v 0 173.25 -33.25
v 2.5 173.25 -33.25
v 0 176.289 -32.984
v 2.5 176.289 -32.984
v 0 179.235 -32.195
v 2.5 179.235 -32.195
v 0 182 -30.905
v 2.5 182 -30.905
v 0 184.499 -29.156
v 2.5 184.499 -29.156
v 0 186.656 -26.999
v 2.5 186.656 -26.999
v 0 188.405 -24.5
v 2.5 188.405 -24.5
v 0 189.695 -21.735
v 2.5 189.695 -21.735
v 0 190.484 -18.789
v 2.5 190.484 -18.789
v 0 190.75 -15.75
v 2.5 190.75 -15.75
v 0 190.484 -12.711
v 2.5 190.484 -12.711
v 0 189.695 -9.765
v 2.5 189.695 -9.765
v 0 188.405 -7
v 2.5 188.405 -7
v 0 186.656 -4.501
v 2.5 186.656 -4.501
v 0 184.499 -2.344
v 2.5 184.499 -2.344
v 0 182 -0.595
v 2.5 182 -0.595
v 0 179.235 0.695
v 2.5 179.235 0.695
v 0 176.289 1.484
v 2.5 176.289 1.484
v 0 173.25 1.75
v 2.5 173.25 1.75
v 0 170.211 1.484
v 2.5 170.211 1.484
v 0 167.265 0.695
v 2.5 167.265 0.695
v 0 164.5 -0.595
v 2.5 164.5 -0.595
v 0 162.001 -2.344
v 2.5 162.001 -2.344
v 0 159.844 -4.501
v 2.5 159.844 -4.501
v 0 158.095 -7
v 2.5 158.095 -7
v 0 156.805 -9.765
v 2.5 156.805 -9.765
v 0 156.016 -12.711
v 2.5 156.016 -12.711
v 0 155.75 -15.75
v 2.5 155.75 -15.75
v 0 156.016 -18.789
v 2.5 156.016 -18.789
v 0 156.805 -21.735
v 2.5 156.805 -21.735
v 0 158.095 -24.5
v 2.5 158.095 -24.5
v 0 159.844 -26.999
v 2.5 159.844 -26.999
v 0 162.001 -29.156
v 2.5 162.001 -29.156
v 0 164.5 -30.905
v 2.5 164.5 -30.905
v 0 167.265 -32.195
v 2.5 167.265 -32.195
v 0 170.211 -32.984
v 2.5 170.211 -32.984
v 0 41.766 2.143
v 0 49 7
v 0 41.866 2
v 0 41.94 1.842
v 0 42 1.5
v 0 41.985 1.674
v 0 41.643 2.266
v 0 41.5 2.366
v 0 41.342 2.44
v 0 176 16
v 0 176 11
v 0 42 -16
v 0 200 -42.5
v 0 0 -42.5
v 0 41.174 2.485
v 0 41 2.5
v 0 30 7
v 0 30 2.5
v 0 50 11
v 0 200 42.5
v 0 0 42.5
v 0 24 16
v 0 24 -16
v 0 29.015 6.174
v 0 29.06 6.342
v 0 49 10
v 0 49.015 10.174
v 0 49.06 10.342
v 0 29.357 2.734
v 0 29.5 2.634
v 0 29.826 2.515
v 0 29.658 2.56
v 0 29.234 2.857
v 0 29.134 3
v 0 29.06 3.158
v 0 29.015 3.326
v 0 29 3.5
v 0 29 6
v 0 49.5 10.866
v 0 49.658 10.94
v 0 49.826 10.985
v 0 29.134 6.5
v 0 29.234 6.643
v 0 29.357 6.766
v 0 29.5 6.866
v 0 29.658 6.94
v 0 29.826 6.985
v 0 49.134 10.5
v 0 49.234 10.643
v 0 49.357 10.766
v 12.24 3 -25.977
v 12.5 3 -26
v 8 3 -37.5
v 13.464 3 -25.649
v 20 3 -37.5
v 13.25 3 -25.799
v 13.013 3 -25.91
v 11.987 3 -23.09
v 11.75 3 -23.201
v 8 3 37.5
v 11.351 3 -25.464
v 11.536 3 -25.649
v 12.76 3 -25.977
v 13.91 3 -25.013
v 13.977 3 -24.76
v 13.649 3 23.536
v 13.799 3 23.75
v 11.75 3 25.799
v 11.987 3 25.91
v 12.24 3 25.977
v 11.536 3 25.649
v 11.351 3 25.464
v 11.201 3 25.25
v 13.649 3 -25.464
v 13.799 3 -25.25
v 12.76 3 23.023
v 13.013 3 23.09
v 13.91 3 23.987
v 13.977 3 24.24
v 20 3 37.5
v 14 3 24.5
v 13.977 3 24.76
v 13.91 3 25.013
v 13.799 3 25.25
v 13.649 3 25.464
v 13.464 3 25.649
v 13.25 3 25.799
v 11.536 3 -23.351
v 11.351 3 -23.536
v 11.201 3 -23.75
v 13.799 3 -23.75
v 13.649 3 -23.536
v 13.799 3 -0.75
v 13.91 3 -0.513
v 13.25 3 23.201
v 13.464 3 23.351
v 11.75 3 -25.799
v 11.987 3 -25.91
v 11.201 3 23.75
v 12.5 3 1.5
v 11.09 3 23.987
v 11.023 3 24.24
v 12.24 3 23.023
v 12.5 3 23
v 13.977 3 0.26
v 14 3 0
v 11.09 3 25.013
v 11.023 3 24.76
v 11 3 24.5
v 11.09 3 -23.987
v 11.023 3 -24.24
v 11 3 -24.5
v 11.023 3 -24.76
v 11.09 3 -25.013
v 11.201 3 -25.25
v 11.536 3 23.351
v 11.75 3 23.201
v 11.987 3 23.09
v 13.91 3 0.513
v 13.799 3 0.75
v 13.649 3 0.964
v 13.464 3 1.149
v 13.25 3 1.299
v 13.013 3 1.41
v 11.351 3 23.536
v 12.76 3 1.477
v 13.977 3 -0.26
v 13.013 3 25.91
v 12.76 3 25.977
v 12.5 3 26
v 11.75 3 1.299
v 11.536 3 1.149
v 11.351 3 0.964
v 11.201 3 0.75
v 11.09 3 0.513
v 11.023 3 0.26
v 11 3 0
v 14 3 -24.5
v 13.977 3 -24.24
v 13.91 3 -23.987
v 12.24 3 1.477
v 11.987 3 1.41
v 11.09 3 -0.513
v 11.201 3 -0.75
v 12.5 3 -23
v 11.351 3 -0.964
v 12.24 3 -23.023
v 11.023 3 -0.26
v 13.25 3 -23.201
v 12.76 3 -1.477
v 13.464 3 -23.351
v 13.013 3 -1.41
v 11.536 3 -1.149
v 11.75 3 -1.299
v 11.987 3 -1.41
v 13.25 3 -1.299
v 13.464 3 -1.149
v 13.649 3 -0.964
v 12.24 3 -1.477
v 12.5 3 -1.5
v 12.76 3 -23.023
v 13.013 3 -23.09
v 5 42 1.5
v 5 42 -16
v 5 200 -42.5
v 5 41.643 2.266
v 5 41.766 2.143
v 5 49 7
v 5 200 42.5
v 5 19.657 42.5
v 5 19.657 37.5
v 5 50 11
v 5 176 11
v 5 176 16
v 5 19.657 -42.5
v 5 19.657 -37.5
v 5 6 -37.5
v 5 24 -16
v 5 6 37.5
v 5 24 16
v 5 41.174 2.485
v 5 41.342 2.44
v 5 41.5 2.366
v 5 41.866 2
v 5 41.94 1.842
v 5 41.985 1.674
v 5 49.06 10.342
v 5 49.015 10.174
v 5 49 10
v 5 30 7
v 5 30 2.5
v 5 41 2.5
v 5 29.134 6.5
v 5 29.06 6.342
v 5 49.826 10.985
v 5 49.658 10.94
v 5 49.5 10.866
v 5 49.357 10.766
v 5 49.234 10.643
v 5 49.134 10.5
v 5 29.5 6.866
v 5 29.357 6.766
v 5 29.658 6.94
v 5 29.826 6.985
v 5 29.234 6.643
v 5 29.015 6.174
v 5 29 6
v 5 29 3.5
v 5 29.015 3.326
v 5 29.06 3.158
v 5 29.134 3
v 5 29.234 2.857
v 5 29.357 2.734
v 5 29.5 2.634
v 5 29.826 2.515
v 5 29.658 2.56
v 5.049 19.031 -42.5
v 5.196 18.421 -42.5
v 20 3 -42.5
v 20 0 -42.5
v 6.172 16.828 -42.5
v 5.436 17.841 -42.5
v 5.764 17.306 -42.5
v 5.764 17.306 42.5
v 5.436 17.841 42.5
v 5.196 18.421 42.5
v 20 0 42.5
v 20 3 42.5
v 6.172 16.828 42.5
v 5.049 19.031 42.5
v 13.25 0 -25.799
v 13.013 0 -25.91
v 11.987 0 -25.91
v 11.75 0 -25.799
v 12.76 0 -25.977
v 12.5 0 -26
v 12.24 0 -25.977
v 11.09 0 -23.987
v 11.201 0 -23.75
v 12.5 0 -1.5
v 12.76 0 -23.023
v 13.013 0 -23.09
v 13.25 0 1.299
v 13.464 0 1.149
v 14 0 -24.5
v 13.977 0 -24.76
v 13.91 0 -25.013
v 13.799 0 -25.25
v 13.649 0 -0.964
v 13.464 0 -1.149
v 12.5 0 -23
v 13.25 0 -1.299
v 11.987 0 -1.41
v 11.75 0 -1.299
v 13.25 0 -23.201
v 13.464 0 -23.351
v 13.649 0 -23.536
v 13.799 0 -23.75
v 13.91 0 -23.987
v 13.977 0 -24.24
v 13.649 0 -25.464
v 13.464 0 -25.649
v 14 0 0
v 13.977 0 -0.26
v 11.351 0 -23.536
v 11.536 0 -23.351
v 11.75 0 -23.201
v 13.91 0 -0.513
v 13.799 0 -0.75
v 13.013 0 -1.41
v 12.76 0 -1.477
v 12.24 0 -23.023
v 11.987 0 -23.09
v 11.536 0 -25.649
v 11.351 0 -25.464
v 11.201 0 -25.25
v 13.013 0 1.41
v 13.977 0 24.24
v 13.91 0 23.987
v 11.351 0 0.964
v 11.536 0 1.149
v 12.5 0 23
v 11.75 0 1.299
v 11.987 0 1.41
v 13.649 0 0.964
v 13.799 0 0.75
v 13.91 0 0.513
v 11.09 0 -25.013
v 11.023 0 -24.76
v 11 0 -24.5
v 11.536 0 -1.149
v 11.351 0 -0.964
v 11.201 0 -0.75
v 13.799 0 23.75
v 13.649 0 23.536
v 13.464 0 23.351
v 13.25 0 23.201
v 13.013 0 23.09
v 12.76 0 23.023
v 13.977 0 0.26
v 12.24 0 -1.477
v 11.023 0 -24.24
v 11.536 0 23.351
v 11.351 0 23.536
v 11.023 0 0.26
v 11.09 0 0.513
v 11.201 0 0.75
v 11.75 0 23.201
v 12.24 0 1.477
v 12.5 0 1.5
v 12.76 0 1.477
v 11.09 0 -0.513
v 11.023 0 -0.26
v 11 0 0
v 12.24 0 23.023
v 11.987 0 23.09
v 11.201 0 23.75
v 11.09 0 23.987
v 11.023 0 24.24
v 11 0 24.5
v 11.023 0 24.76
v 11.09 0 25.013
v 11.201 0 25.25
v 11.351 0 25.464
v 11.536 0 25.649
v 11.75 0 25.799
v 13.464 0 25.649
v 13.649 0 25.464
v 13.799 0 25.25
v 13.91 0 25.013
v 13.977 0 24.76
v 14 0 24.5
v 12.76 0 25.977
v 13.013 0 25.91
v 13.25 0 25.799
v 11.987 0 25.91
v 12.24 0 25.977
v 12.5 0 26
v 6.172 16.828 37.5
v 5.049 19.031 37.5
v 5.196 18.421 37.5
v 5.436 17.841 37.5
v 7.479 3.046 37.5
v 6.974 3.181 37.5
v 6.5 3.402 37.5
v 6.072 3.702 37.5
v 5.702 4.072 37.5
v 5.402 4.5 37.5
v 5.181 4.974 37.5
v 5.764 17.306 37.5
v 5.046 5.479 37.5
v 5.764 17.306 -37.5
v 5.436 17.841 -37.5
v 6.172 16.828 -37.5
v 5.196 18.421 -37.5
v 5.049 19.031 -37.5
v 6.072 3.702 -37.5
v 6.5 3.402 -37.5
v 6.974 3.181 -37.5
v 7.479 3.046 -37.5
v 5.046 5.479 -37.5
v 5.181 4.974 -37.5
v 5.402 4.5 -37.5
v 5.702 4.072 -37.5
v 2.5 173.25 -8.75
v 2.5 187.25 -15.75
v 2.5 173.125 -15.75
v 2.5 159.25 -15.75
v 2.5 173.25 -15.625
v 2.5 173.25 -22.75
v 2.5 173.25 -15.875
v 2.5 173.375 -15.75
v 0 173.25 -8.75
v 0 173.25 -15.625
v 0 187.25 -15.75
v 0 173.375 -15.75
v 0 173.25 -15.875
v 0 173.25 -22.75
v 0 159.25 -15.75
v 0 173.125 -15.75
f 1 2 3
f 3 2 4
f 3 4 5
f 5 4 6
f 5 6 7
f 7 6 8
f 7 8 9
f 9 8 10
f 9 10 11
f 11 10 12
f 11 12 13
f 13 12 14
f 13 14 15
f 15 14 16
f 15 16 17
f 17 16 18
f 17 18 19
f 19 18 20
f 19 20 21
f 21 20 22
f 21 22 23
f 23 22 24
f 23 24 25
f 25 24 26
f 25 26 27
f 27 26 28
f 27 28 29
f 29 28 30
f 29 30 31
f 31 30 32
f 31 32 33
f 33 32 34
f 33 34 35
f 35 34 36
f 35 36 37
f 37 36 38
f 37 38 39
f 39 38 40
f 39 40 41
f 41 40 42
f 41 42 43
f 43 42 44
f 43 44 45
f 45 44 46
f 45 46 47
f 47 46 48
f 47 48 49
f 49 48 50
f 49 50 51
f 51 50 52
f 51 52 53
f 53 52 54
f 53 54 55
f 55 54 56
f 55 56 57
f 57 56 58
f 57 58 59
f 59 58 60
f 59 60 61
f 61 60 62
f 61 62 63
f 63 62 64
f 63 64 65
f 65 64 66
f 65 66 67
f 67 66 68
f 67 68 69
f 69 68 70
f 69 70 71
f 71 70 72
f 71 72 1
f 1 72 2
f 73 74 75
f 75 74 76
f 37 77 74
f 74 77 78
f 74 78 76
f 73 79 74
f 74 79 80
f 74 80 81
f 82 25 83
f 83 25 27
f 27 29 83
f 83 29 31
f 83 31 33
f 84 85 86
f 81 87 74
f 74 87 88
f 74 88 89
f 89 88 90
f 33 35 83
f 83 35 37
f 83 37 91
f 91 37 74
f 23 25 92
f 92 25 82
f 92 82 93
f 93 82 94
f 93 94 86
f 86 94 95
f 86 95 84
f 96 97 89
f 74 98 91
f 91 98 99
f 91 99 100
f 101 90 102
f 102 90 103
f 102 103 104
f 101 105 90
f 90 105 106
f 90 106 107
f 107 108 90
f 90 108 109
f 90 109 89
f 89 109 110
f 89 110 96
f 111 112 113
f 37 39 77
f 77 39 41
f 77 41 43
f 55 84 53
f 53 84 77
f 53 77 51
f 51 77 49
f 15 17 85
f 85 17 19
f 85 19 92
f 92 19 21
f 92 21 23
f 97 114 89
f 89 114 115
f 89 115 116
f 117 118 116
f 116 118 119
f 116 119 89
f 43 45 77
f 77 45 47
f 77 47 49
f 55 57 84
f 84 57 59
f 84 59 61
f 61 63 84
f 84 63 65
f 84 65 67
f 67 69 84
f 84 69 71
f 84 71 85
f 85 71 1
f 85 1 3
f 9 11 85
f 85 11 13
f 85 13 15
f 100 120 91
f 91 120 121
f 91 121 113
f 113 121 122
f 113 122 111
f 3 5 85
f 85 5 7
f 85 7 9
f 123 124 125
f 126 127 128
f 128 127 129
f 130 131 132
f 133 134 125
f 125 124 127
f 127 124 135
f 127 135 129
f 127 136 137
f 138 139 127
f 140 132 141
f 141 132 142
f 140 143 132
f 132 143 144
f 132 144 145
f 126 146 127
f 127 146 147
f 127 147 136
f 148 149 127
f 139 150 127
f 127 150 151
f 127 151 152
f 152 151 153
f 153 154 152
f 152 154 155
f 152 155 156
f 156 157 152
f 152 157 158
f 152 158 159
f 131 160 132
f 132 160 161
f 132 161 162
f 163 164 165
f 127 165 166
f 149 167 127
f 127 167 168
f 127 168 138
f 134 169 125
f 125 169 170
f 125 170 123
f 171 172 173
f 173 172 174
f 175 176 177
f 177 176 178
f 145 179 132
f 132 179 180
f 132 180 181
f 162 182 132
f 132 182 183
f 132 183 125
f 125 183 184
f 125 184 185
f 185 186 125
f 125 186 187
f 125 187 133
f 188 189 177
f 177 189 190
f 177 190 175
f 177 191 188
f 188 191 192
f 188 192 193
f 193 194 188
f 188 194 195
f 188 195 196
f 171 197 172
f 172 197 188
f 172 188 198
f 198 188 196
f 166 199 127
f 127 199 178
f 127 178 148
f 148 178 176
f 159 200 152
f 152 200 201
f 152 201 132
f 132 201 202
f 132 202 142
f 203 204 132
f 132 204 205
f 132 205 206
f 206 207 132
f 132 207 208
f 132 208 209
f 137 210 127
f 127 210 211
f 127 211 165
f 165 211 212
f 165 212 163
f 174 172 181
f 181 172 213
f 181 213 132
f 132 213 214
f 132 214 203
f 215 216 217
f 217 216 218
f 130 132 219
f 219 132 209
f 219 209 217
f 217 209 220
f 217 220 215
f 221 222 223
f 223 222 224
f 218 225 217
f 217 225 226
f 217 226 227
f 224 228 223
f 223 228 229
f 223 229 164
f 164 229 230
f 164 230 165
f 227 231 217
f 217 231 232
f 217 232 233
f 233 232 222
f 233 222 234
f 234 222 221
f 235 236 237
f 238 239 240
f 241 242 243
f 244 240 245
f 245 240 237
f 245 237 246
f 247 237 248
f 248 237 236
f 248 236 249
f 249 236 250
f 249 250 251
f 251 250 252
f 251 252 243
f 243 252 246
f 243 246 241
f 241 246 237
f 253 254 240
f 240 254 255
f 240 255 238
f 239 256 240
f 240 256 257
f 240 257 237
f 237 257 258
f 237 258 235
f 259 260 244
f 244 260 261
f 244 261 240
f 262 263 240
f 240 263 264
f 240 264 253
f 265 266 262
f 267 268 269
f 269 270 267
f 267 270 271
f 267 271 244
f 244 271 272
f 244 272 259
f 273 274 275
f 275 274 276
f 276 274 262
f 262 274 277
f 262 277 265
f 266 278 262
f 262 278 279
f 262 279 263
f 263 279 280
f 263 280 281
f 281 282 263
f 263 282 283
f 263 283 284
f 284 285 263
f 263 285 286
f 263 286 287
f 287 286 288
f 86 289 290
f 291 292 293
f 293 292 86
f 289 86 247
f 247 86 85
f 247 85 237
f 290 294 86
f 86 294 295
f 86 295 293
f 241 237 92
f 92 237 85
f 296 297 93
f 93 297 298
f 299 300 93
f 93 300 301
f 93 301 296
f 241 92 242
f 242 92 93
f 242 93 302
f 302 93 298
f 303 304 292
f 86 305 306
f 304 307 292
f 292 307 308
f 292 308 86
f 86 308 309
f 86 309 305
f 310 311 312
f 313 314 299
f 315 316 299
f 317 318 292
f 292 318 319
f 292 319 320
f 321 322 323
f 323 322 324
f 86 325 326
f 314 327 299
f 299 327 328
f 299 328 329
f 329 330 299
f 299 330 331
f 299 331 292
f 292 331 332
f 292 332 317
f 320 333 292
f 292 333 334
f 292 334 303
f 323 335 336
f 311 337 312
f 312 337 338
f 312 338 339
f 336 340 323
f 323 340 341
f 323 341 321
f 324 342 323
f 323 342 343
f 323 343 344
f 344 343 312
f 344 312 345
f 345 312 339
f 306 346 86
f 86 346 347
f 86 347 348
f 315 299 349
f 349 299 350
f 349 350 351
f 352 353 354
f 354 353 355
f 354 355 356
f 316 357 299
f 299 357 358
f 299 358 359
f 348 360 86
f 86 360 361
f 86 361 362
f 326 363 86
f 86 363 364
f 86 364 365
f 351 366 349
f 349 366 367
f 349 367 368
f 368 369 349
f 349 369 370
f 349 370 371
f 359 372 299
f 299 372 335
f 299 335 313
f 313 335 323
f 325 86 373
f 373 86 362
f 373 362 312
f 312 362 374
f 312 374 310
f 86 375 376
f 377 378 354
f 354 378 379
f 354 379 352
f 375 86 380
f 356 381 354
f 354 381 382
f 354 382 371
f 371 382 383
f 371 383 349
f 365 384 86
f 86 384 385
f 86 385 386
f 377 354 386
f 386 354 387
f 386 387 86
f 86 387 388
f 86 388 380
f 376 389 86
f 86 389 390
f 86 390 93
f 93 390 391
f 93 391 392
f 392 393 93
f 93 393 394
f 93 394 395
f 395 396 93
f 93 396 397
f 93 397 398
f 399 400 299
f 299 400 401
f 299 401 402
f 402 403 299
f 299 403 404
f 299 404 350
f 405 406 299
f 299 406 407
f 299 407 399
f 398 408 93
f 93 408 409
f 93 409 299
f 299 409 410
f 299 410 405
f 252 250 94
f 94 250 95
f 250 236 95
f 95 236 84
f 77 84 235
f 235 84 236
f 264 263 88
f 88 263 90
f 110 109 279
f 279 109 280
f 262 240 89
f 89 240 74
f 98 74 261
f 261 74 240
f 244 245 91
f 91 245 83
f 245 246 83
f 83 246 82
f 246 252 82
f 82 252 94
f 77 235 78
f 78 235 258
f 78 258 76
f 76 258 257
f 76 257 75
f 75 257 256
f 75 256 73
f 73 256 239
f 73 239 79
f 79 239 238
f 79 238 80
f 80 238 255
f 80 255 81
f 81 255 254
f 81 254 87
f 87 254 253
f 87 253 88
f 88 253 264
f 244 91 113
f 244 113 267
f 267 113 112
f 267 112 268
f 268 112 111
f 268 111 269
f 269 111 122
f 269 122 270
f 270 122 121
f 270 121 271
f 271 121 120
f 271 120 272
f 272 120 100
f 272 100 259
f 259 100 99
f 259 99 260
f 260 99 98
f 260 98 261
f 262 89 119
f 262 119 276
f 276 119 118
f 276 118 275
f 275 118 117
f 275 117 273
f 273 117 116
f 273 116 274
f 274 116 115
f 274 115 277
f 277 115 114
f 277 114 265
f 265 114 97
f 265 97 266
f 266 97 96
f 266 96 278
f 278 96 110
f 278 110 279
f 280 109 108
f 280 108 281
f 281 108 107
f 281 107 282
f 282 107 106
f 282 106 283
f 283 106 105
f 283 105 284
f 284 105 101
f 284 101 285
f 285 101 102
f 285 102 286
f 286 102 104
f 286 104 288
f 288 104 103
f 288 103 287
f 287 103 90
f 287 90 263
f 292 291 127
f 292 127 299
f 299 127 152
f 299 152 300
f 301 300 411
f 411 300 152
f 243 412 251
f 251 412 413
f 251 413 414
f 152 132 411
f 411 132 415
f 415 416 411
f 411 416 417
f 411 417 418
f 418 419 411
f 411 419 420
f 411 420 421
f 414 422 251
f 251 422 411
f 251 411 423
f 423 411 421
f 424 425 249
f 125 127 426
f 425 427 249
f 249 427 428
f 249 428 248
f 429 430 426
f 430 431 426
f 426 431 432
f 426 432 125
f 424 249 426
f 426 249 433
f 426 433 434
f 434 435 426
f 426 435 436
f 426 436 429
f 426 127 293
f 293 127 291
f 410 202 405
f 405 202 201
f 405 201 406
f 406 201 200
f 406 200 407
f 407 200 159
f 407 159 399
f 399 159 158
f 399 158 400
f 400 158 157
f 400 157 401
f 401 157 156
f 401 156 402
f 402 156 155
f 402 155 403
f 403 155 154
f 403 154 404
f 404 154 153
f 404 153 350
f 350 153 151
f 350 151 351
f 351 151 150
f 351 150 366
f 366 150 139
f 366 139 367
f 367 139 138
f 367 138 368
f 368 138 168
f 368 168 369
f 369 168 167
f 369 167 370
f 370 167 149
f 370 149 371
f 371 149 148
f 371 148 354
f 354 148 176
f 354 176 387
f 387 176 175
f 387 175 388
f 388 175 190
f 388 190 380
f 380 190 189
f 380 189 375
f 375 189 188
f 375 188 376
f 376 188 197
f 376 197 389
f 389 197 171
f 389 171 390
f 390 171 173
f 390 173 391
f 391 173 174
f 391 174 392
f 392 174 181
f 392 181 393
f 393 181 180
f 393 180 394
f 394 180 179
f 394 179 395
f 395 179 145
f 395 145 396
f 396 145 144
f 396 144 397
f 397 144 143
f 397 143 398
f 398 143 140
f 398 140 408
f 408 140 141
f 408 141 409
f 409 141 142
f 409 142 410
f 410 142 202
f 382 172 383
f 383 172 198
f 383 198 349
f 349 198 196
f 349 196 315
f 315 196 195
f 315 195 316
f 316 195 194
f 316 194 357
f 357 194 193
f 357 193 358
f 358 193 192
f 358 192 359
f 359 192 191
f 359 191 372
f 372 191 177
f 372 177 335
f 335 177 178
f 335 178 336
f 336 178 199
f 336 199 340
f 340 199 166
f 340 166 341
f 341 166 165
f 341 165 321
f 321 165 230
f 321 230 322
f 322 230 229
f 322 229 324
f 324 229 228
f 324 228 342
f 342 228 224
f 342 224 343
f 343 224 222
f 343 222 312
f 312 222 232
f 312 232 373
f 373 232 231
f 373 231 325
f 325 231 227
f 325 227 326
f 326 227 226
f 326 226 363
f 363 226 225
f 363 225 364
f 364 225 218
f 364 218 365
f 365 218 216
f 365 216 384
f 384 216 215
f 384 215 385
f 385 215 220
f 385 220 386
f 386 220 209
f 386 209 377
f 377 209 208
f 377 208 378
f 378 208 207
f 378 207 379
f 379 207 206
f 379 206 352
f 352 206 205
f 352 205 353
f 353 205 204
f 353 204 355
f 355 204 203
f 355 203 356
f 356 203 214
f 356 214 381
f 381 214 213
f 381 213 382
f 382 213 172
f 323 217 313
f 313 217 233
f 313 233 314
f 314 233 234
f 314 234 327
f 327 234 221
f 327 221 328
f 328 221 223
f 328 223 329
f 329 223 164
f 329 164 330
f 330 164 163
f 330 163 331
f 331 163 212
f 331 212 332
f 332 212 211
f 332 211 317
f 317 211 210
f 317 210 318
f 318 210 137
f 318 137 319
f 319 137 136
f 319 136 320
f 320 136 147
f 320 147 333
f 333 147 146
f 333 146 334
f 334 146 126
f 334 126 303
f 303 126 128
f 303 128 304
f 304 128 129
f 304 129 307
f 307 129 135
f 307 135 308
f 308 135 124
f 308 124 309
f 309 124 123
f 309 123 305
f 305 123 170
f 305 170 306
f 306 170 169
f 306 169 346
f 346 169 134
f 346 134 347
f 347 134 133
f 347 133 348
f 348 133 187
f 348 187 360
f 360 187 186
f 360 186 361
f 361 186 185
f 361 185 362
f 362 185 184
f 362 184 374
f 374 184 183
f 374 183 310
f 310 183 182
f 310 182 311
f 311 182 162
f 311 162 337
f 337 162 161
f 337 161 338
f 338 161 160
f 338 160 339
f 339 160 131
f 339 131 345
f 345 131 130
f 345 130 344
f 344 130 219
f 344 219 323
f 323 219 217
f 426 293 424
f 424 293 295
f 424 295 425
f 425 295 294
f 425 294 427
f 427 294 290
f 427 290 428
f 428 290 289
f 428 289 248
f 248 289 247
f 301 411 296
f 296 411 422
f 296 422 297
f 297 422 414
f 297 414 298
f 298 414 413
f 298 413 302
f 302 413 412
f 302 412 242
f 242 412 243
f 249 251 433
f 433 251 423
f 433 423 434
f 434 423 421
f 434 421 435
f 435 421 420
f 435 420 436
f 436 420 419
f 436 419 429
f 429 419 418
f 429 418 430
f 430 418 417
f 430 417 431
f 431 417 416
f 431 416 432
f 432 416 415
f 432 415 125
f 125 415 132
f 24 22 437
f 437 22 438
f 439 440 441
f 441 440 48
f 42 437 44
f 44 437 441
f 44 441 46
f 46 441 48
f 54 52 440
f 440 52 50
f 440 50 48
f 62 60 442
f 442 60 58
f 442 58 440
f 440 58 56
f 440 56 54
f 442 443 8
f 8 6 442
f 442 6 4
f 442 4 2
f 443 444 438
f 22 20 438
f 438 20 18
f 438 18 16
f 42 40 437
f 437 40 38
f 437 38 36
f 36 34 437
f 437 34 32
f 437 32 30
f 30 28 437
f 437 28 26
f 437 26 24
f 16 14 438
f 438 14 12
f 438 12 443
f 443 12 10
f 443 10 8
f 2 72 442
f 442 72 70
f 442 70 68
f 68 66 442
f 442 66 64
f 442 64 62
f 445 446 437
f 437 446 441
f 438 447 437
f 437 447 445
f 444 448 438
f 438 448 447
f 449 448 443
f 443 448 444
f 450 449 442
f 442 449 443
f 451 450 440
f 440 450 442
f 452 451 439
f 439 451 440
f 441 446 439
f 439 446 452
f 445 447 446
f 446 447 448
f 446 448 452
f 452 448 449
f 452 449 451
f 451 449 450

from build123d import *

# Parameters (mm, degrees)
SKETCH1_W               = 85
SKETCH1_H               = 200
BOSS_EXTRUDE1_DEPTH     = 5
FILLET1_R               = 1
SKETCH2_R               = 17.5
CUT_EXTRUDE1_DEPTH      = 2.5
FILLET2_R               = 0.125
SKETCH3_W               = 15
SKETCH3_H               = 85
BOSS_EXTRUDE2_DEPTH     = 3
RIB1_START              = -5
RIB1_DEPTH              = 5
SKETCH5_R               = 1.5
CUT_EXTRUDE2_DEPTH      = 3
FILLET3_R               = 4
FILLET4_R               = 3
MIRROR3_START           = -5
MIRROR3_COPY_1_DEPTH    = 5
FILLET5_R               = 4
FILLET6_R               = 3
CUT_EXTRUDE3_DEPTH      = 219.231528428
CUT_EXTRUDE3_DEPTH_BACK = 219.231528428
SKETCH7_R               = 17.5
BOSS_EXTRUDE3_DEPTH     = 2.5


# Read off the part's stored shape, not the designer's step: Rib1
with BuildPart() as part:
    # Sketch1 → Boss-Extrude1 (new body)
    with BuildSketch(Plane(origin=(0, 0, 0), x_dir=(0, 0, -1), z_dir=(1, 0, 0))):
        with Locations((0, 100)):
            Rectangle(SKETCH1_W, SKETCH1_H)
        Polygon((-16, 25), (-16, 176), (-11, 176), (-11, 49), (-7, 49), (-7, 29), (-2.5, 29), (-2.5, 42), (16, 42), (16, 25), (16, 24), (15, 24), (-15, 24), (-16, 24), align=None, mode=Mode.SUBTRACT)
    extrude(amount=BOSS_EXTRUDE1_DEPTH)

    # Fillet1
    fillet1_edges = [part.edges().sort_by_distance(p)[0] for p in [
        (2.5, 42, 2.5),
        (2.5, 29, 2.5),
        (2.5, 29, 7),
        (2.5, 49, 11),
    ]]
    fillet(fillet1_edges, radius=FILLET1_R)

    # Sketch2 → Cut-Extrude1 (cut)
    with BuildSketch(Plane(origin=(5, 0, 0), x_dir=(0, 0, -1), z_dir=(1, 0, 0))):
        with Locations((15.75, 173.25)):
            Circle(SKETCH2_R)
        Polygon((15.75, 173.125), (15.625, 173.25), (8.75, 173.25), (15.75, 187.25), (15.75, 173.375), (15.875, 173.25), (22.75, 173.25), (15.75, 159.25), align=None, mode=Mode.SUBTRACT)
    cut_extrude1 = extrude(amount=-CUT_EXTRUDE1_DEPTH, mode=Mode.SUBTRACT)

    # Fillet2
    fillet2_edges = [part.edges().sort_by_distance(p)[0] for p in [
        (3.75, 173.25, -15.625),
        (3.75, 173.125, -15.75),
        (3.75, 173.25, -15.875),
        (3.75, 173.375, -15.75),
    ]]
    fillet(fillet2_edges, radius=FILLET2_R)

    # Sketch3 → Boss-Extrude2 (add)
    with BuildSketch(Plane.XZ):
        with Locations((-7.5, 0)):
            Rectangle(SKETCH3_W, SKETCH3_H)
    boss_extrude2 = extrude(amount=-BOSS_EXTRUDE2_DEPTH)

    # Rib1 outline → Rib1 (add)
    with BuildSketch(Plane.XY.offset(42.5).offset(RIB1_START)):
        Polygon((0, 18), (-15, 3), (0, 3), align=None)
    rib1 = extrude(amount=RIB1_DEPTH)

    # Mirror1: Rib1 across plane
    add(rib1.mirror(Plane.XY))

    # Sketch5 → Cut-Extrude2 (cut)
    with BuildSketch(Plane(origin=(0, 3, 0), x_dir=(1, 0, 0), z_dir=(0, 1, 0))):
        with Locations(Location((-7.5, 24.5, 0), (0, 0, 270))):
            Circle(SKETCH5_R)
        with Locations(Location((-7.5, 0, 0), (0, 0, 270))):
            Circle(SKETCH5_R)
        with Locations(Location((-7.5, -24.5, 0), (0, 0, 270))):
            Circle(SKETCH5_R)
    cut_extrude2 = extrude(amount=-CUT_EXTRUDE2_DEPTH, mode=Mode.SUBTRACT)

    # Fillet3
    fillet3_edges = [part.edges().sort_by_distance(p)[0] for p in [
        (0, 18, 40),
        (0, 18, -40),
    ]]
    fillet(fillet3_edges, radius=FILLET3_R)

    # Fillet4
    fillet4_edges = [part.edges().sort_by_distance(p)[0] for p in [
        (0, 3, 0),
    ]]
    fillet(fillet4_edges, radius=FILLET4_R)

    # Mirror3: Boss-Extrude2, Rib1, Cut-Extrude2 across plane
    add(boss_extrude2.mirror(Plane(origin=(2.5, 0, 0), x_dir=(0, 0, 1), z_dir=(1, 0, 0))))
    add(rib1.mirror(Plane(origin=(2.5, 0, 0), x_dir=(0, 0, 1), z_dir=(1, 0, 0))))
    add(cut_extrude2.mirror(Plane(origin=(2.5, 0, 0), x_dir=(0, 0, 1), z_dir=(1, 0, 0))), mode=Mode.SUBTRACT)

    # Mirror3 copy 1 sketch → Mirror3 copy 1 (add)
    with BuildSketch(Plane(origin=(5, 0, -42.5), x_dir=(-1, 0, 0), z_dir=(0, 0, -1)).offset(MIRROR3_START)):
        Polygon((0, 18), (-15, 3), (0, 3), align=None)
    extrude(amount=MIRROR3_COPY_1_DEPTH)

    # Fillet5
    fillet5_edges = [part.edges().sort_by_distance(p)[0] for p in [
        (5, 18, 40),
        (5, 18, -40),
    ]]
    fillet(fillet5_edges, radius=FILLET5_R)

    # Fillet6
    fillet6_edges = [part.edges().sort_by_distance(p)[0] for p in [
        (5, 3, 0),
    ]]
    fillet(fillet6_edges, radius=FILLET6_R)

    # Sketch6 → Cut-Extrude3 (cut, two sides: drawn at the far end of the back side and taken through both)
    with BuildSketch(Plane.XY.offset(42.5).offset(-CUT_EXTRUDE3_DEPTH_BACK)):
        Polygon((0, 24), (0, -5.503420929), (-25.982696809, -6.518277055), (-24.822861237, 19.656854249), align=None)
    extrude(amount=CUT_EXTRUDE3_DEPTH + CUT_EXTRUDE3_DEPTH_BACK, mode=Mode.SUBTRACT)

    # Mirror4: Cut-Extrude1 across plane
    add(cut_extrude1.mirror(Plane(origin=(2.5, 0, 0), x_dir=(0, 0, 1), z_dir=(1, 0, 0))), mode=Mode.SUBTRACT)

    # Sketch7 → Boss-Extrude3 (add)
    with BuildSketch(Plane(origin=(5, 0, 0), x_dir=(0, 0, -1), z_dir=(1, 0, 0))):
        with Locations((15.75, 173.25)):
            Circle(SKETCH7_R)
    extrude(amount=-BOSS_EXTRUDE3_DEPTH)


solid = part.part
